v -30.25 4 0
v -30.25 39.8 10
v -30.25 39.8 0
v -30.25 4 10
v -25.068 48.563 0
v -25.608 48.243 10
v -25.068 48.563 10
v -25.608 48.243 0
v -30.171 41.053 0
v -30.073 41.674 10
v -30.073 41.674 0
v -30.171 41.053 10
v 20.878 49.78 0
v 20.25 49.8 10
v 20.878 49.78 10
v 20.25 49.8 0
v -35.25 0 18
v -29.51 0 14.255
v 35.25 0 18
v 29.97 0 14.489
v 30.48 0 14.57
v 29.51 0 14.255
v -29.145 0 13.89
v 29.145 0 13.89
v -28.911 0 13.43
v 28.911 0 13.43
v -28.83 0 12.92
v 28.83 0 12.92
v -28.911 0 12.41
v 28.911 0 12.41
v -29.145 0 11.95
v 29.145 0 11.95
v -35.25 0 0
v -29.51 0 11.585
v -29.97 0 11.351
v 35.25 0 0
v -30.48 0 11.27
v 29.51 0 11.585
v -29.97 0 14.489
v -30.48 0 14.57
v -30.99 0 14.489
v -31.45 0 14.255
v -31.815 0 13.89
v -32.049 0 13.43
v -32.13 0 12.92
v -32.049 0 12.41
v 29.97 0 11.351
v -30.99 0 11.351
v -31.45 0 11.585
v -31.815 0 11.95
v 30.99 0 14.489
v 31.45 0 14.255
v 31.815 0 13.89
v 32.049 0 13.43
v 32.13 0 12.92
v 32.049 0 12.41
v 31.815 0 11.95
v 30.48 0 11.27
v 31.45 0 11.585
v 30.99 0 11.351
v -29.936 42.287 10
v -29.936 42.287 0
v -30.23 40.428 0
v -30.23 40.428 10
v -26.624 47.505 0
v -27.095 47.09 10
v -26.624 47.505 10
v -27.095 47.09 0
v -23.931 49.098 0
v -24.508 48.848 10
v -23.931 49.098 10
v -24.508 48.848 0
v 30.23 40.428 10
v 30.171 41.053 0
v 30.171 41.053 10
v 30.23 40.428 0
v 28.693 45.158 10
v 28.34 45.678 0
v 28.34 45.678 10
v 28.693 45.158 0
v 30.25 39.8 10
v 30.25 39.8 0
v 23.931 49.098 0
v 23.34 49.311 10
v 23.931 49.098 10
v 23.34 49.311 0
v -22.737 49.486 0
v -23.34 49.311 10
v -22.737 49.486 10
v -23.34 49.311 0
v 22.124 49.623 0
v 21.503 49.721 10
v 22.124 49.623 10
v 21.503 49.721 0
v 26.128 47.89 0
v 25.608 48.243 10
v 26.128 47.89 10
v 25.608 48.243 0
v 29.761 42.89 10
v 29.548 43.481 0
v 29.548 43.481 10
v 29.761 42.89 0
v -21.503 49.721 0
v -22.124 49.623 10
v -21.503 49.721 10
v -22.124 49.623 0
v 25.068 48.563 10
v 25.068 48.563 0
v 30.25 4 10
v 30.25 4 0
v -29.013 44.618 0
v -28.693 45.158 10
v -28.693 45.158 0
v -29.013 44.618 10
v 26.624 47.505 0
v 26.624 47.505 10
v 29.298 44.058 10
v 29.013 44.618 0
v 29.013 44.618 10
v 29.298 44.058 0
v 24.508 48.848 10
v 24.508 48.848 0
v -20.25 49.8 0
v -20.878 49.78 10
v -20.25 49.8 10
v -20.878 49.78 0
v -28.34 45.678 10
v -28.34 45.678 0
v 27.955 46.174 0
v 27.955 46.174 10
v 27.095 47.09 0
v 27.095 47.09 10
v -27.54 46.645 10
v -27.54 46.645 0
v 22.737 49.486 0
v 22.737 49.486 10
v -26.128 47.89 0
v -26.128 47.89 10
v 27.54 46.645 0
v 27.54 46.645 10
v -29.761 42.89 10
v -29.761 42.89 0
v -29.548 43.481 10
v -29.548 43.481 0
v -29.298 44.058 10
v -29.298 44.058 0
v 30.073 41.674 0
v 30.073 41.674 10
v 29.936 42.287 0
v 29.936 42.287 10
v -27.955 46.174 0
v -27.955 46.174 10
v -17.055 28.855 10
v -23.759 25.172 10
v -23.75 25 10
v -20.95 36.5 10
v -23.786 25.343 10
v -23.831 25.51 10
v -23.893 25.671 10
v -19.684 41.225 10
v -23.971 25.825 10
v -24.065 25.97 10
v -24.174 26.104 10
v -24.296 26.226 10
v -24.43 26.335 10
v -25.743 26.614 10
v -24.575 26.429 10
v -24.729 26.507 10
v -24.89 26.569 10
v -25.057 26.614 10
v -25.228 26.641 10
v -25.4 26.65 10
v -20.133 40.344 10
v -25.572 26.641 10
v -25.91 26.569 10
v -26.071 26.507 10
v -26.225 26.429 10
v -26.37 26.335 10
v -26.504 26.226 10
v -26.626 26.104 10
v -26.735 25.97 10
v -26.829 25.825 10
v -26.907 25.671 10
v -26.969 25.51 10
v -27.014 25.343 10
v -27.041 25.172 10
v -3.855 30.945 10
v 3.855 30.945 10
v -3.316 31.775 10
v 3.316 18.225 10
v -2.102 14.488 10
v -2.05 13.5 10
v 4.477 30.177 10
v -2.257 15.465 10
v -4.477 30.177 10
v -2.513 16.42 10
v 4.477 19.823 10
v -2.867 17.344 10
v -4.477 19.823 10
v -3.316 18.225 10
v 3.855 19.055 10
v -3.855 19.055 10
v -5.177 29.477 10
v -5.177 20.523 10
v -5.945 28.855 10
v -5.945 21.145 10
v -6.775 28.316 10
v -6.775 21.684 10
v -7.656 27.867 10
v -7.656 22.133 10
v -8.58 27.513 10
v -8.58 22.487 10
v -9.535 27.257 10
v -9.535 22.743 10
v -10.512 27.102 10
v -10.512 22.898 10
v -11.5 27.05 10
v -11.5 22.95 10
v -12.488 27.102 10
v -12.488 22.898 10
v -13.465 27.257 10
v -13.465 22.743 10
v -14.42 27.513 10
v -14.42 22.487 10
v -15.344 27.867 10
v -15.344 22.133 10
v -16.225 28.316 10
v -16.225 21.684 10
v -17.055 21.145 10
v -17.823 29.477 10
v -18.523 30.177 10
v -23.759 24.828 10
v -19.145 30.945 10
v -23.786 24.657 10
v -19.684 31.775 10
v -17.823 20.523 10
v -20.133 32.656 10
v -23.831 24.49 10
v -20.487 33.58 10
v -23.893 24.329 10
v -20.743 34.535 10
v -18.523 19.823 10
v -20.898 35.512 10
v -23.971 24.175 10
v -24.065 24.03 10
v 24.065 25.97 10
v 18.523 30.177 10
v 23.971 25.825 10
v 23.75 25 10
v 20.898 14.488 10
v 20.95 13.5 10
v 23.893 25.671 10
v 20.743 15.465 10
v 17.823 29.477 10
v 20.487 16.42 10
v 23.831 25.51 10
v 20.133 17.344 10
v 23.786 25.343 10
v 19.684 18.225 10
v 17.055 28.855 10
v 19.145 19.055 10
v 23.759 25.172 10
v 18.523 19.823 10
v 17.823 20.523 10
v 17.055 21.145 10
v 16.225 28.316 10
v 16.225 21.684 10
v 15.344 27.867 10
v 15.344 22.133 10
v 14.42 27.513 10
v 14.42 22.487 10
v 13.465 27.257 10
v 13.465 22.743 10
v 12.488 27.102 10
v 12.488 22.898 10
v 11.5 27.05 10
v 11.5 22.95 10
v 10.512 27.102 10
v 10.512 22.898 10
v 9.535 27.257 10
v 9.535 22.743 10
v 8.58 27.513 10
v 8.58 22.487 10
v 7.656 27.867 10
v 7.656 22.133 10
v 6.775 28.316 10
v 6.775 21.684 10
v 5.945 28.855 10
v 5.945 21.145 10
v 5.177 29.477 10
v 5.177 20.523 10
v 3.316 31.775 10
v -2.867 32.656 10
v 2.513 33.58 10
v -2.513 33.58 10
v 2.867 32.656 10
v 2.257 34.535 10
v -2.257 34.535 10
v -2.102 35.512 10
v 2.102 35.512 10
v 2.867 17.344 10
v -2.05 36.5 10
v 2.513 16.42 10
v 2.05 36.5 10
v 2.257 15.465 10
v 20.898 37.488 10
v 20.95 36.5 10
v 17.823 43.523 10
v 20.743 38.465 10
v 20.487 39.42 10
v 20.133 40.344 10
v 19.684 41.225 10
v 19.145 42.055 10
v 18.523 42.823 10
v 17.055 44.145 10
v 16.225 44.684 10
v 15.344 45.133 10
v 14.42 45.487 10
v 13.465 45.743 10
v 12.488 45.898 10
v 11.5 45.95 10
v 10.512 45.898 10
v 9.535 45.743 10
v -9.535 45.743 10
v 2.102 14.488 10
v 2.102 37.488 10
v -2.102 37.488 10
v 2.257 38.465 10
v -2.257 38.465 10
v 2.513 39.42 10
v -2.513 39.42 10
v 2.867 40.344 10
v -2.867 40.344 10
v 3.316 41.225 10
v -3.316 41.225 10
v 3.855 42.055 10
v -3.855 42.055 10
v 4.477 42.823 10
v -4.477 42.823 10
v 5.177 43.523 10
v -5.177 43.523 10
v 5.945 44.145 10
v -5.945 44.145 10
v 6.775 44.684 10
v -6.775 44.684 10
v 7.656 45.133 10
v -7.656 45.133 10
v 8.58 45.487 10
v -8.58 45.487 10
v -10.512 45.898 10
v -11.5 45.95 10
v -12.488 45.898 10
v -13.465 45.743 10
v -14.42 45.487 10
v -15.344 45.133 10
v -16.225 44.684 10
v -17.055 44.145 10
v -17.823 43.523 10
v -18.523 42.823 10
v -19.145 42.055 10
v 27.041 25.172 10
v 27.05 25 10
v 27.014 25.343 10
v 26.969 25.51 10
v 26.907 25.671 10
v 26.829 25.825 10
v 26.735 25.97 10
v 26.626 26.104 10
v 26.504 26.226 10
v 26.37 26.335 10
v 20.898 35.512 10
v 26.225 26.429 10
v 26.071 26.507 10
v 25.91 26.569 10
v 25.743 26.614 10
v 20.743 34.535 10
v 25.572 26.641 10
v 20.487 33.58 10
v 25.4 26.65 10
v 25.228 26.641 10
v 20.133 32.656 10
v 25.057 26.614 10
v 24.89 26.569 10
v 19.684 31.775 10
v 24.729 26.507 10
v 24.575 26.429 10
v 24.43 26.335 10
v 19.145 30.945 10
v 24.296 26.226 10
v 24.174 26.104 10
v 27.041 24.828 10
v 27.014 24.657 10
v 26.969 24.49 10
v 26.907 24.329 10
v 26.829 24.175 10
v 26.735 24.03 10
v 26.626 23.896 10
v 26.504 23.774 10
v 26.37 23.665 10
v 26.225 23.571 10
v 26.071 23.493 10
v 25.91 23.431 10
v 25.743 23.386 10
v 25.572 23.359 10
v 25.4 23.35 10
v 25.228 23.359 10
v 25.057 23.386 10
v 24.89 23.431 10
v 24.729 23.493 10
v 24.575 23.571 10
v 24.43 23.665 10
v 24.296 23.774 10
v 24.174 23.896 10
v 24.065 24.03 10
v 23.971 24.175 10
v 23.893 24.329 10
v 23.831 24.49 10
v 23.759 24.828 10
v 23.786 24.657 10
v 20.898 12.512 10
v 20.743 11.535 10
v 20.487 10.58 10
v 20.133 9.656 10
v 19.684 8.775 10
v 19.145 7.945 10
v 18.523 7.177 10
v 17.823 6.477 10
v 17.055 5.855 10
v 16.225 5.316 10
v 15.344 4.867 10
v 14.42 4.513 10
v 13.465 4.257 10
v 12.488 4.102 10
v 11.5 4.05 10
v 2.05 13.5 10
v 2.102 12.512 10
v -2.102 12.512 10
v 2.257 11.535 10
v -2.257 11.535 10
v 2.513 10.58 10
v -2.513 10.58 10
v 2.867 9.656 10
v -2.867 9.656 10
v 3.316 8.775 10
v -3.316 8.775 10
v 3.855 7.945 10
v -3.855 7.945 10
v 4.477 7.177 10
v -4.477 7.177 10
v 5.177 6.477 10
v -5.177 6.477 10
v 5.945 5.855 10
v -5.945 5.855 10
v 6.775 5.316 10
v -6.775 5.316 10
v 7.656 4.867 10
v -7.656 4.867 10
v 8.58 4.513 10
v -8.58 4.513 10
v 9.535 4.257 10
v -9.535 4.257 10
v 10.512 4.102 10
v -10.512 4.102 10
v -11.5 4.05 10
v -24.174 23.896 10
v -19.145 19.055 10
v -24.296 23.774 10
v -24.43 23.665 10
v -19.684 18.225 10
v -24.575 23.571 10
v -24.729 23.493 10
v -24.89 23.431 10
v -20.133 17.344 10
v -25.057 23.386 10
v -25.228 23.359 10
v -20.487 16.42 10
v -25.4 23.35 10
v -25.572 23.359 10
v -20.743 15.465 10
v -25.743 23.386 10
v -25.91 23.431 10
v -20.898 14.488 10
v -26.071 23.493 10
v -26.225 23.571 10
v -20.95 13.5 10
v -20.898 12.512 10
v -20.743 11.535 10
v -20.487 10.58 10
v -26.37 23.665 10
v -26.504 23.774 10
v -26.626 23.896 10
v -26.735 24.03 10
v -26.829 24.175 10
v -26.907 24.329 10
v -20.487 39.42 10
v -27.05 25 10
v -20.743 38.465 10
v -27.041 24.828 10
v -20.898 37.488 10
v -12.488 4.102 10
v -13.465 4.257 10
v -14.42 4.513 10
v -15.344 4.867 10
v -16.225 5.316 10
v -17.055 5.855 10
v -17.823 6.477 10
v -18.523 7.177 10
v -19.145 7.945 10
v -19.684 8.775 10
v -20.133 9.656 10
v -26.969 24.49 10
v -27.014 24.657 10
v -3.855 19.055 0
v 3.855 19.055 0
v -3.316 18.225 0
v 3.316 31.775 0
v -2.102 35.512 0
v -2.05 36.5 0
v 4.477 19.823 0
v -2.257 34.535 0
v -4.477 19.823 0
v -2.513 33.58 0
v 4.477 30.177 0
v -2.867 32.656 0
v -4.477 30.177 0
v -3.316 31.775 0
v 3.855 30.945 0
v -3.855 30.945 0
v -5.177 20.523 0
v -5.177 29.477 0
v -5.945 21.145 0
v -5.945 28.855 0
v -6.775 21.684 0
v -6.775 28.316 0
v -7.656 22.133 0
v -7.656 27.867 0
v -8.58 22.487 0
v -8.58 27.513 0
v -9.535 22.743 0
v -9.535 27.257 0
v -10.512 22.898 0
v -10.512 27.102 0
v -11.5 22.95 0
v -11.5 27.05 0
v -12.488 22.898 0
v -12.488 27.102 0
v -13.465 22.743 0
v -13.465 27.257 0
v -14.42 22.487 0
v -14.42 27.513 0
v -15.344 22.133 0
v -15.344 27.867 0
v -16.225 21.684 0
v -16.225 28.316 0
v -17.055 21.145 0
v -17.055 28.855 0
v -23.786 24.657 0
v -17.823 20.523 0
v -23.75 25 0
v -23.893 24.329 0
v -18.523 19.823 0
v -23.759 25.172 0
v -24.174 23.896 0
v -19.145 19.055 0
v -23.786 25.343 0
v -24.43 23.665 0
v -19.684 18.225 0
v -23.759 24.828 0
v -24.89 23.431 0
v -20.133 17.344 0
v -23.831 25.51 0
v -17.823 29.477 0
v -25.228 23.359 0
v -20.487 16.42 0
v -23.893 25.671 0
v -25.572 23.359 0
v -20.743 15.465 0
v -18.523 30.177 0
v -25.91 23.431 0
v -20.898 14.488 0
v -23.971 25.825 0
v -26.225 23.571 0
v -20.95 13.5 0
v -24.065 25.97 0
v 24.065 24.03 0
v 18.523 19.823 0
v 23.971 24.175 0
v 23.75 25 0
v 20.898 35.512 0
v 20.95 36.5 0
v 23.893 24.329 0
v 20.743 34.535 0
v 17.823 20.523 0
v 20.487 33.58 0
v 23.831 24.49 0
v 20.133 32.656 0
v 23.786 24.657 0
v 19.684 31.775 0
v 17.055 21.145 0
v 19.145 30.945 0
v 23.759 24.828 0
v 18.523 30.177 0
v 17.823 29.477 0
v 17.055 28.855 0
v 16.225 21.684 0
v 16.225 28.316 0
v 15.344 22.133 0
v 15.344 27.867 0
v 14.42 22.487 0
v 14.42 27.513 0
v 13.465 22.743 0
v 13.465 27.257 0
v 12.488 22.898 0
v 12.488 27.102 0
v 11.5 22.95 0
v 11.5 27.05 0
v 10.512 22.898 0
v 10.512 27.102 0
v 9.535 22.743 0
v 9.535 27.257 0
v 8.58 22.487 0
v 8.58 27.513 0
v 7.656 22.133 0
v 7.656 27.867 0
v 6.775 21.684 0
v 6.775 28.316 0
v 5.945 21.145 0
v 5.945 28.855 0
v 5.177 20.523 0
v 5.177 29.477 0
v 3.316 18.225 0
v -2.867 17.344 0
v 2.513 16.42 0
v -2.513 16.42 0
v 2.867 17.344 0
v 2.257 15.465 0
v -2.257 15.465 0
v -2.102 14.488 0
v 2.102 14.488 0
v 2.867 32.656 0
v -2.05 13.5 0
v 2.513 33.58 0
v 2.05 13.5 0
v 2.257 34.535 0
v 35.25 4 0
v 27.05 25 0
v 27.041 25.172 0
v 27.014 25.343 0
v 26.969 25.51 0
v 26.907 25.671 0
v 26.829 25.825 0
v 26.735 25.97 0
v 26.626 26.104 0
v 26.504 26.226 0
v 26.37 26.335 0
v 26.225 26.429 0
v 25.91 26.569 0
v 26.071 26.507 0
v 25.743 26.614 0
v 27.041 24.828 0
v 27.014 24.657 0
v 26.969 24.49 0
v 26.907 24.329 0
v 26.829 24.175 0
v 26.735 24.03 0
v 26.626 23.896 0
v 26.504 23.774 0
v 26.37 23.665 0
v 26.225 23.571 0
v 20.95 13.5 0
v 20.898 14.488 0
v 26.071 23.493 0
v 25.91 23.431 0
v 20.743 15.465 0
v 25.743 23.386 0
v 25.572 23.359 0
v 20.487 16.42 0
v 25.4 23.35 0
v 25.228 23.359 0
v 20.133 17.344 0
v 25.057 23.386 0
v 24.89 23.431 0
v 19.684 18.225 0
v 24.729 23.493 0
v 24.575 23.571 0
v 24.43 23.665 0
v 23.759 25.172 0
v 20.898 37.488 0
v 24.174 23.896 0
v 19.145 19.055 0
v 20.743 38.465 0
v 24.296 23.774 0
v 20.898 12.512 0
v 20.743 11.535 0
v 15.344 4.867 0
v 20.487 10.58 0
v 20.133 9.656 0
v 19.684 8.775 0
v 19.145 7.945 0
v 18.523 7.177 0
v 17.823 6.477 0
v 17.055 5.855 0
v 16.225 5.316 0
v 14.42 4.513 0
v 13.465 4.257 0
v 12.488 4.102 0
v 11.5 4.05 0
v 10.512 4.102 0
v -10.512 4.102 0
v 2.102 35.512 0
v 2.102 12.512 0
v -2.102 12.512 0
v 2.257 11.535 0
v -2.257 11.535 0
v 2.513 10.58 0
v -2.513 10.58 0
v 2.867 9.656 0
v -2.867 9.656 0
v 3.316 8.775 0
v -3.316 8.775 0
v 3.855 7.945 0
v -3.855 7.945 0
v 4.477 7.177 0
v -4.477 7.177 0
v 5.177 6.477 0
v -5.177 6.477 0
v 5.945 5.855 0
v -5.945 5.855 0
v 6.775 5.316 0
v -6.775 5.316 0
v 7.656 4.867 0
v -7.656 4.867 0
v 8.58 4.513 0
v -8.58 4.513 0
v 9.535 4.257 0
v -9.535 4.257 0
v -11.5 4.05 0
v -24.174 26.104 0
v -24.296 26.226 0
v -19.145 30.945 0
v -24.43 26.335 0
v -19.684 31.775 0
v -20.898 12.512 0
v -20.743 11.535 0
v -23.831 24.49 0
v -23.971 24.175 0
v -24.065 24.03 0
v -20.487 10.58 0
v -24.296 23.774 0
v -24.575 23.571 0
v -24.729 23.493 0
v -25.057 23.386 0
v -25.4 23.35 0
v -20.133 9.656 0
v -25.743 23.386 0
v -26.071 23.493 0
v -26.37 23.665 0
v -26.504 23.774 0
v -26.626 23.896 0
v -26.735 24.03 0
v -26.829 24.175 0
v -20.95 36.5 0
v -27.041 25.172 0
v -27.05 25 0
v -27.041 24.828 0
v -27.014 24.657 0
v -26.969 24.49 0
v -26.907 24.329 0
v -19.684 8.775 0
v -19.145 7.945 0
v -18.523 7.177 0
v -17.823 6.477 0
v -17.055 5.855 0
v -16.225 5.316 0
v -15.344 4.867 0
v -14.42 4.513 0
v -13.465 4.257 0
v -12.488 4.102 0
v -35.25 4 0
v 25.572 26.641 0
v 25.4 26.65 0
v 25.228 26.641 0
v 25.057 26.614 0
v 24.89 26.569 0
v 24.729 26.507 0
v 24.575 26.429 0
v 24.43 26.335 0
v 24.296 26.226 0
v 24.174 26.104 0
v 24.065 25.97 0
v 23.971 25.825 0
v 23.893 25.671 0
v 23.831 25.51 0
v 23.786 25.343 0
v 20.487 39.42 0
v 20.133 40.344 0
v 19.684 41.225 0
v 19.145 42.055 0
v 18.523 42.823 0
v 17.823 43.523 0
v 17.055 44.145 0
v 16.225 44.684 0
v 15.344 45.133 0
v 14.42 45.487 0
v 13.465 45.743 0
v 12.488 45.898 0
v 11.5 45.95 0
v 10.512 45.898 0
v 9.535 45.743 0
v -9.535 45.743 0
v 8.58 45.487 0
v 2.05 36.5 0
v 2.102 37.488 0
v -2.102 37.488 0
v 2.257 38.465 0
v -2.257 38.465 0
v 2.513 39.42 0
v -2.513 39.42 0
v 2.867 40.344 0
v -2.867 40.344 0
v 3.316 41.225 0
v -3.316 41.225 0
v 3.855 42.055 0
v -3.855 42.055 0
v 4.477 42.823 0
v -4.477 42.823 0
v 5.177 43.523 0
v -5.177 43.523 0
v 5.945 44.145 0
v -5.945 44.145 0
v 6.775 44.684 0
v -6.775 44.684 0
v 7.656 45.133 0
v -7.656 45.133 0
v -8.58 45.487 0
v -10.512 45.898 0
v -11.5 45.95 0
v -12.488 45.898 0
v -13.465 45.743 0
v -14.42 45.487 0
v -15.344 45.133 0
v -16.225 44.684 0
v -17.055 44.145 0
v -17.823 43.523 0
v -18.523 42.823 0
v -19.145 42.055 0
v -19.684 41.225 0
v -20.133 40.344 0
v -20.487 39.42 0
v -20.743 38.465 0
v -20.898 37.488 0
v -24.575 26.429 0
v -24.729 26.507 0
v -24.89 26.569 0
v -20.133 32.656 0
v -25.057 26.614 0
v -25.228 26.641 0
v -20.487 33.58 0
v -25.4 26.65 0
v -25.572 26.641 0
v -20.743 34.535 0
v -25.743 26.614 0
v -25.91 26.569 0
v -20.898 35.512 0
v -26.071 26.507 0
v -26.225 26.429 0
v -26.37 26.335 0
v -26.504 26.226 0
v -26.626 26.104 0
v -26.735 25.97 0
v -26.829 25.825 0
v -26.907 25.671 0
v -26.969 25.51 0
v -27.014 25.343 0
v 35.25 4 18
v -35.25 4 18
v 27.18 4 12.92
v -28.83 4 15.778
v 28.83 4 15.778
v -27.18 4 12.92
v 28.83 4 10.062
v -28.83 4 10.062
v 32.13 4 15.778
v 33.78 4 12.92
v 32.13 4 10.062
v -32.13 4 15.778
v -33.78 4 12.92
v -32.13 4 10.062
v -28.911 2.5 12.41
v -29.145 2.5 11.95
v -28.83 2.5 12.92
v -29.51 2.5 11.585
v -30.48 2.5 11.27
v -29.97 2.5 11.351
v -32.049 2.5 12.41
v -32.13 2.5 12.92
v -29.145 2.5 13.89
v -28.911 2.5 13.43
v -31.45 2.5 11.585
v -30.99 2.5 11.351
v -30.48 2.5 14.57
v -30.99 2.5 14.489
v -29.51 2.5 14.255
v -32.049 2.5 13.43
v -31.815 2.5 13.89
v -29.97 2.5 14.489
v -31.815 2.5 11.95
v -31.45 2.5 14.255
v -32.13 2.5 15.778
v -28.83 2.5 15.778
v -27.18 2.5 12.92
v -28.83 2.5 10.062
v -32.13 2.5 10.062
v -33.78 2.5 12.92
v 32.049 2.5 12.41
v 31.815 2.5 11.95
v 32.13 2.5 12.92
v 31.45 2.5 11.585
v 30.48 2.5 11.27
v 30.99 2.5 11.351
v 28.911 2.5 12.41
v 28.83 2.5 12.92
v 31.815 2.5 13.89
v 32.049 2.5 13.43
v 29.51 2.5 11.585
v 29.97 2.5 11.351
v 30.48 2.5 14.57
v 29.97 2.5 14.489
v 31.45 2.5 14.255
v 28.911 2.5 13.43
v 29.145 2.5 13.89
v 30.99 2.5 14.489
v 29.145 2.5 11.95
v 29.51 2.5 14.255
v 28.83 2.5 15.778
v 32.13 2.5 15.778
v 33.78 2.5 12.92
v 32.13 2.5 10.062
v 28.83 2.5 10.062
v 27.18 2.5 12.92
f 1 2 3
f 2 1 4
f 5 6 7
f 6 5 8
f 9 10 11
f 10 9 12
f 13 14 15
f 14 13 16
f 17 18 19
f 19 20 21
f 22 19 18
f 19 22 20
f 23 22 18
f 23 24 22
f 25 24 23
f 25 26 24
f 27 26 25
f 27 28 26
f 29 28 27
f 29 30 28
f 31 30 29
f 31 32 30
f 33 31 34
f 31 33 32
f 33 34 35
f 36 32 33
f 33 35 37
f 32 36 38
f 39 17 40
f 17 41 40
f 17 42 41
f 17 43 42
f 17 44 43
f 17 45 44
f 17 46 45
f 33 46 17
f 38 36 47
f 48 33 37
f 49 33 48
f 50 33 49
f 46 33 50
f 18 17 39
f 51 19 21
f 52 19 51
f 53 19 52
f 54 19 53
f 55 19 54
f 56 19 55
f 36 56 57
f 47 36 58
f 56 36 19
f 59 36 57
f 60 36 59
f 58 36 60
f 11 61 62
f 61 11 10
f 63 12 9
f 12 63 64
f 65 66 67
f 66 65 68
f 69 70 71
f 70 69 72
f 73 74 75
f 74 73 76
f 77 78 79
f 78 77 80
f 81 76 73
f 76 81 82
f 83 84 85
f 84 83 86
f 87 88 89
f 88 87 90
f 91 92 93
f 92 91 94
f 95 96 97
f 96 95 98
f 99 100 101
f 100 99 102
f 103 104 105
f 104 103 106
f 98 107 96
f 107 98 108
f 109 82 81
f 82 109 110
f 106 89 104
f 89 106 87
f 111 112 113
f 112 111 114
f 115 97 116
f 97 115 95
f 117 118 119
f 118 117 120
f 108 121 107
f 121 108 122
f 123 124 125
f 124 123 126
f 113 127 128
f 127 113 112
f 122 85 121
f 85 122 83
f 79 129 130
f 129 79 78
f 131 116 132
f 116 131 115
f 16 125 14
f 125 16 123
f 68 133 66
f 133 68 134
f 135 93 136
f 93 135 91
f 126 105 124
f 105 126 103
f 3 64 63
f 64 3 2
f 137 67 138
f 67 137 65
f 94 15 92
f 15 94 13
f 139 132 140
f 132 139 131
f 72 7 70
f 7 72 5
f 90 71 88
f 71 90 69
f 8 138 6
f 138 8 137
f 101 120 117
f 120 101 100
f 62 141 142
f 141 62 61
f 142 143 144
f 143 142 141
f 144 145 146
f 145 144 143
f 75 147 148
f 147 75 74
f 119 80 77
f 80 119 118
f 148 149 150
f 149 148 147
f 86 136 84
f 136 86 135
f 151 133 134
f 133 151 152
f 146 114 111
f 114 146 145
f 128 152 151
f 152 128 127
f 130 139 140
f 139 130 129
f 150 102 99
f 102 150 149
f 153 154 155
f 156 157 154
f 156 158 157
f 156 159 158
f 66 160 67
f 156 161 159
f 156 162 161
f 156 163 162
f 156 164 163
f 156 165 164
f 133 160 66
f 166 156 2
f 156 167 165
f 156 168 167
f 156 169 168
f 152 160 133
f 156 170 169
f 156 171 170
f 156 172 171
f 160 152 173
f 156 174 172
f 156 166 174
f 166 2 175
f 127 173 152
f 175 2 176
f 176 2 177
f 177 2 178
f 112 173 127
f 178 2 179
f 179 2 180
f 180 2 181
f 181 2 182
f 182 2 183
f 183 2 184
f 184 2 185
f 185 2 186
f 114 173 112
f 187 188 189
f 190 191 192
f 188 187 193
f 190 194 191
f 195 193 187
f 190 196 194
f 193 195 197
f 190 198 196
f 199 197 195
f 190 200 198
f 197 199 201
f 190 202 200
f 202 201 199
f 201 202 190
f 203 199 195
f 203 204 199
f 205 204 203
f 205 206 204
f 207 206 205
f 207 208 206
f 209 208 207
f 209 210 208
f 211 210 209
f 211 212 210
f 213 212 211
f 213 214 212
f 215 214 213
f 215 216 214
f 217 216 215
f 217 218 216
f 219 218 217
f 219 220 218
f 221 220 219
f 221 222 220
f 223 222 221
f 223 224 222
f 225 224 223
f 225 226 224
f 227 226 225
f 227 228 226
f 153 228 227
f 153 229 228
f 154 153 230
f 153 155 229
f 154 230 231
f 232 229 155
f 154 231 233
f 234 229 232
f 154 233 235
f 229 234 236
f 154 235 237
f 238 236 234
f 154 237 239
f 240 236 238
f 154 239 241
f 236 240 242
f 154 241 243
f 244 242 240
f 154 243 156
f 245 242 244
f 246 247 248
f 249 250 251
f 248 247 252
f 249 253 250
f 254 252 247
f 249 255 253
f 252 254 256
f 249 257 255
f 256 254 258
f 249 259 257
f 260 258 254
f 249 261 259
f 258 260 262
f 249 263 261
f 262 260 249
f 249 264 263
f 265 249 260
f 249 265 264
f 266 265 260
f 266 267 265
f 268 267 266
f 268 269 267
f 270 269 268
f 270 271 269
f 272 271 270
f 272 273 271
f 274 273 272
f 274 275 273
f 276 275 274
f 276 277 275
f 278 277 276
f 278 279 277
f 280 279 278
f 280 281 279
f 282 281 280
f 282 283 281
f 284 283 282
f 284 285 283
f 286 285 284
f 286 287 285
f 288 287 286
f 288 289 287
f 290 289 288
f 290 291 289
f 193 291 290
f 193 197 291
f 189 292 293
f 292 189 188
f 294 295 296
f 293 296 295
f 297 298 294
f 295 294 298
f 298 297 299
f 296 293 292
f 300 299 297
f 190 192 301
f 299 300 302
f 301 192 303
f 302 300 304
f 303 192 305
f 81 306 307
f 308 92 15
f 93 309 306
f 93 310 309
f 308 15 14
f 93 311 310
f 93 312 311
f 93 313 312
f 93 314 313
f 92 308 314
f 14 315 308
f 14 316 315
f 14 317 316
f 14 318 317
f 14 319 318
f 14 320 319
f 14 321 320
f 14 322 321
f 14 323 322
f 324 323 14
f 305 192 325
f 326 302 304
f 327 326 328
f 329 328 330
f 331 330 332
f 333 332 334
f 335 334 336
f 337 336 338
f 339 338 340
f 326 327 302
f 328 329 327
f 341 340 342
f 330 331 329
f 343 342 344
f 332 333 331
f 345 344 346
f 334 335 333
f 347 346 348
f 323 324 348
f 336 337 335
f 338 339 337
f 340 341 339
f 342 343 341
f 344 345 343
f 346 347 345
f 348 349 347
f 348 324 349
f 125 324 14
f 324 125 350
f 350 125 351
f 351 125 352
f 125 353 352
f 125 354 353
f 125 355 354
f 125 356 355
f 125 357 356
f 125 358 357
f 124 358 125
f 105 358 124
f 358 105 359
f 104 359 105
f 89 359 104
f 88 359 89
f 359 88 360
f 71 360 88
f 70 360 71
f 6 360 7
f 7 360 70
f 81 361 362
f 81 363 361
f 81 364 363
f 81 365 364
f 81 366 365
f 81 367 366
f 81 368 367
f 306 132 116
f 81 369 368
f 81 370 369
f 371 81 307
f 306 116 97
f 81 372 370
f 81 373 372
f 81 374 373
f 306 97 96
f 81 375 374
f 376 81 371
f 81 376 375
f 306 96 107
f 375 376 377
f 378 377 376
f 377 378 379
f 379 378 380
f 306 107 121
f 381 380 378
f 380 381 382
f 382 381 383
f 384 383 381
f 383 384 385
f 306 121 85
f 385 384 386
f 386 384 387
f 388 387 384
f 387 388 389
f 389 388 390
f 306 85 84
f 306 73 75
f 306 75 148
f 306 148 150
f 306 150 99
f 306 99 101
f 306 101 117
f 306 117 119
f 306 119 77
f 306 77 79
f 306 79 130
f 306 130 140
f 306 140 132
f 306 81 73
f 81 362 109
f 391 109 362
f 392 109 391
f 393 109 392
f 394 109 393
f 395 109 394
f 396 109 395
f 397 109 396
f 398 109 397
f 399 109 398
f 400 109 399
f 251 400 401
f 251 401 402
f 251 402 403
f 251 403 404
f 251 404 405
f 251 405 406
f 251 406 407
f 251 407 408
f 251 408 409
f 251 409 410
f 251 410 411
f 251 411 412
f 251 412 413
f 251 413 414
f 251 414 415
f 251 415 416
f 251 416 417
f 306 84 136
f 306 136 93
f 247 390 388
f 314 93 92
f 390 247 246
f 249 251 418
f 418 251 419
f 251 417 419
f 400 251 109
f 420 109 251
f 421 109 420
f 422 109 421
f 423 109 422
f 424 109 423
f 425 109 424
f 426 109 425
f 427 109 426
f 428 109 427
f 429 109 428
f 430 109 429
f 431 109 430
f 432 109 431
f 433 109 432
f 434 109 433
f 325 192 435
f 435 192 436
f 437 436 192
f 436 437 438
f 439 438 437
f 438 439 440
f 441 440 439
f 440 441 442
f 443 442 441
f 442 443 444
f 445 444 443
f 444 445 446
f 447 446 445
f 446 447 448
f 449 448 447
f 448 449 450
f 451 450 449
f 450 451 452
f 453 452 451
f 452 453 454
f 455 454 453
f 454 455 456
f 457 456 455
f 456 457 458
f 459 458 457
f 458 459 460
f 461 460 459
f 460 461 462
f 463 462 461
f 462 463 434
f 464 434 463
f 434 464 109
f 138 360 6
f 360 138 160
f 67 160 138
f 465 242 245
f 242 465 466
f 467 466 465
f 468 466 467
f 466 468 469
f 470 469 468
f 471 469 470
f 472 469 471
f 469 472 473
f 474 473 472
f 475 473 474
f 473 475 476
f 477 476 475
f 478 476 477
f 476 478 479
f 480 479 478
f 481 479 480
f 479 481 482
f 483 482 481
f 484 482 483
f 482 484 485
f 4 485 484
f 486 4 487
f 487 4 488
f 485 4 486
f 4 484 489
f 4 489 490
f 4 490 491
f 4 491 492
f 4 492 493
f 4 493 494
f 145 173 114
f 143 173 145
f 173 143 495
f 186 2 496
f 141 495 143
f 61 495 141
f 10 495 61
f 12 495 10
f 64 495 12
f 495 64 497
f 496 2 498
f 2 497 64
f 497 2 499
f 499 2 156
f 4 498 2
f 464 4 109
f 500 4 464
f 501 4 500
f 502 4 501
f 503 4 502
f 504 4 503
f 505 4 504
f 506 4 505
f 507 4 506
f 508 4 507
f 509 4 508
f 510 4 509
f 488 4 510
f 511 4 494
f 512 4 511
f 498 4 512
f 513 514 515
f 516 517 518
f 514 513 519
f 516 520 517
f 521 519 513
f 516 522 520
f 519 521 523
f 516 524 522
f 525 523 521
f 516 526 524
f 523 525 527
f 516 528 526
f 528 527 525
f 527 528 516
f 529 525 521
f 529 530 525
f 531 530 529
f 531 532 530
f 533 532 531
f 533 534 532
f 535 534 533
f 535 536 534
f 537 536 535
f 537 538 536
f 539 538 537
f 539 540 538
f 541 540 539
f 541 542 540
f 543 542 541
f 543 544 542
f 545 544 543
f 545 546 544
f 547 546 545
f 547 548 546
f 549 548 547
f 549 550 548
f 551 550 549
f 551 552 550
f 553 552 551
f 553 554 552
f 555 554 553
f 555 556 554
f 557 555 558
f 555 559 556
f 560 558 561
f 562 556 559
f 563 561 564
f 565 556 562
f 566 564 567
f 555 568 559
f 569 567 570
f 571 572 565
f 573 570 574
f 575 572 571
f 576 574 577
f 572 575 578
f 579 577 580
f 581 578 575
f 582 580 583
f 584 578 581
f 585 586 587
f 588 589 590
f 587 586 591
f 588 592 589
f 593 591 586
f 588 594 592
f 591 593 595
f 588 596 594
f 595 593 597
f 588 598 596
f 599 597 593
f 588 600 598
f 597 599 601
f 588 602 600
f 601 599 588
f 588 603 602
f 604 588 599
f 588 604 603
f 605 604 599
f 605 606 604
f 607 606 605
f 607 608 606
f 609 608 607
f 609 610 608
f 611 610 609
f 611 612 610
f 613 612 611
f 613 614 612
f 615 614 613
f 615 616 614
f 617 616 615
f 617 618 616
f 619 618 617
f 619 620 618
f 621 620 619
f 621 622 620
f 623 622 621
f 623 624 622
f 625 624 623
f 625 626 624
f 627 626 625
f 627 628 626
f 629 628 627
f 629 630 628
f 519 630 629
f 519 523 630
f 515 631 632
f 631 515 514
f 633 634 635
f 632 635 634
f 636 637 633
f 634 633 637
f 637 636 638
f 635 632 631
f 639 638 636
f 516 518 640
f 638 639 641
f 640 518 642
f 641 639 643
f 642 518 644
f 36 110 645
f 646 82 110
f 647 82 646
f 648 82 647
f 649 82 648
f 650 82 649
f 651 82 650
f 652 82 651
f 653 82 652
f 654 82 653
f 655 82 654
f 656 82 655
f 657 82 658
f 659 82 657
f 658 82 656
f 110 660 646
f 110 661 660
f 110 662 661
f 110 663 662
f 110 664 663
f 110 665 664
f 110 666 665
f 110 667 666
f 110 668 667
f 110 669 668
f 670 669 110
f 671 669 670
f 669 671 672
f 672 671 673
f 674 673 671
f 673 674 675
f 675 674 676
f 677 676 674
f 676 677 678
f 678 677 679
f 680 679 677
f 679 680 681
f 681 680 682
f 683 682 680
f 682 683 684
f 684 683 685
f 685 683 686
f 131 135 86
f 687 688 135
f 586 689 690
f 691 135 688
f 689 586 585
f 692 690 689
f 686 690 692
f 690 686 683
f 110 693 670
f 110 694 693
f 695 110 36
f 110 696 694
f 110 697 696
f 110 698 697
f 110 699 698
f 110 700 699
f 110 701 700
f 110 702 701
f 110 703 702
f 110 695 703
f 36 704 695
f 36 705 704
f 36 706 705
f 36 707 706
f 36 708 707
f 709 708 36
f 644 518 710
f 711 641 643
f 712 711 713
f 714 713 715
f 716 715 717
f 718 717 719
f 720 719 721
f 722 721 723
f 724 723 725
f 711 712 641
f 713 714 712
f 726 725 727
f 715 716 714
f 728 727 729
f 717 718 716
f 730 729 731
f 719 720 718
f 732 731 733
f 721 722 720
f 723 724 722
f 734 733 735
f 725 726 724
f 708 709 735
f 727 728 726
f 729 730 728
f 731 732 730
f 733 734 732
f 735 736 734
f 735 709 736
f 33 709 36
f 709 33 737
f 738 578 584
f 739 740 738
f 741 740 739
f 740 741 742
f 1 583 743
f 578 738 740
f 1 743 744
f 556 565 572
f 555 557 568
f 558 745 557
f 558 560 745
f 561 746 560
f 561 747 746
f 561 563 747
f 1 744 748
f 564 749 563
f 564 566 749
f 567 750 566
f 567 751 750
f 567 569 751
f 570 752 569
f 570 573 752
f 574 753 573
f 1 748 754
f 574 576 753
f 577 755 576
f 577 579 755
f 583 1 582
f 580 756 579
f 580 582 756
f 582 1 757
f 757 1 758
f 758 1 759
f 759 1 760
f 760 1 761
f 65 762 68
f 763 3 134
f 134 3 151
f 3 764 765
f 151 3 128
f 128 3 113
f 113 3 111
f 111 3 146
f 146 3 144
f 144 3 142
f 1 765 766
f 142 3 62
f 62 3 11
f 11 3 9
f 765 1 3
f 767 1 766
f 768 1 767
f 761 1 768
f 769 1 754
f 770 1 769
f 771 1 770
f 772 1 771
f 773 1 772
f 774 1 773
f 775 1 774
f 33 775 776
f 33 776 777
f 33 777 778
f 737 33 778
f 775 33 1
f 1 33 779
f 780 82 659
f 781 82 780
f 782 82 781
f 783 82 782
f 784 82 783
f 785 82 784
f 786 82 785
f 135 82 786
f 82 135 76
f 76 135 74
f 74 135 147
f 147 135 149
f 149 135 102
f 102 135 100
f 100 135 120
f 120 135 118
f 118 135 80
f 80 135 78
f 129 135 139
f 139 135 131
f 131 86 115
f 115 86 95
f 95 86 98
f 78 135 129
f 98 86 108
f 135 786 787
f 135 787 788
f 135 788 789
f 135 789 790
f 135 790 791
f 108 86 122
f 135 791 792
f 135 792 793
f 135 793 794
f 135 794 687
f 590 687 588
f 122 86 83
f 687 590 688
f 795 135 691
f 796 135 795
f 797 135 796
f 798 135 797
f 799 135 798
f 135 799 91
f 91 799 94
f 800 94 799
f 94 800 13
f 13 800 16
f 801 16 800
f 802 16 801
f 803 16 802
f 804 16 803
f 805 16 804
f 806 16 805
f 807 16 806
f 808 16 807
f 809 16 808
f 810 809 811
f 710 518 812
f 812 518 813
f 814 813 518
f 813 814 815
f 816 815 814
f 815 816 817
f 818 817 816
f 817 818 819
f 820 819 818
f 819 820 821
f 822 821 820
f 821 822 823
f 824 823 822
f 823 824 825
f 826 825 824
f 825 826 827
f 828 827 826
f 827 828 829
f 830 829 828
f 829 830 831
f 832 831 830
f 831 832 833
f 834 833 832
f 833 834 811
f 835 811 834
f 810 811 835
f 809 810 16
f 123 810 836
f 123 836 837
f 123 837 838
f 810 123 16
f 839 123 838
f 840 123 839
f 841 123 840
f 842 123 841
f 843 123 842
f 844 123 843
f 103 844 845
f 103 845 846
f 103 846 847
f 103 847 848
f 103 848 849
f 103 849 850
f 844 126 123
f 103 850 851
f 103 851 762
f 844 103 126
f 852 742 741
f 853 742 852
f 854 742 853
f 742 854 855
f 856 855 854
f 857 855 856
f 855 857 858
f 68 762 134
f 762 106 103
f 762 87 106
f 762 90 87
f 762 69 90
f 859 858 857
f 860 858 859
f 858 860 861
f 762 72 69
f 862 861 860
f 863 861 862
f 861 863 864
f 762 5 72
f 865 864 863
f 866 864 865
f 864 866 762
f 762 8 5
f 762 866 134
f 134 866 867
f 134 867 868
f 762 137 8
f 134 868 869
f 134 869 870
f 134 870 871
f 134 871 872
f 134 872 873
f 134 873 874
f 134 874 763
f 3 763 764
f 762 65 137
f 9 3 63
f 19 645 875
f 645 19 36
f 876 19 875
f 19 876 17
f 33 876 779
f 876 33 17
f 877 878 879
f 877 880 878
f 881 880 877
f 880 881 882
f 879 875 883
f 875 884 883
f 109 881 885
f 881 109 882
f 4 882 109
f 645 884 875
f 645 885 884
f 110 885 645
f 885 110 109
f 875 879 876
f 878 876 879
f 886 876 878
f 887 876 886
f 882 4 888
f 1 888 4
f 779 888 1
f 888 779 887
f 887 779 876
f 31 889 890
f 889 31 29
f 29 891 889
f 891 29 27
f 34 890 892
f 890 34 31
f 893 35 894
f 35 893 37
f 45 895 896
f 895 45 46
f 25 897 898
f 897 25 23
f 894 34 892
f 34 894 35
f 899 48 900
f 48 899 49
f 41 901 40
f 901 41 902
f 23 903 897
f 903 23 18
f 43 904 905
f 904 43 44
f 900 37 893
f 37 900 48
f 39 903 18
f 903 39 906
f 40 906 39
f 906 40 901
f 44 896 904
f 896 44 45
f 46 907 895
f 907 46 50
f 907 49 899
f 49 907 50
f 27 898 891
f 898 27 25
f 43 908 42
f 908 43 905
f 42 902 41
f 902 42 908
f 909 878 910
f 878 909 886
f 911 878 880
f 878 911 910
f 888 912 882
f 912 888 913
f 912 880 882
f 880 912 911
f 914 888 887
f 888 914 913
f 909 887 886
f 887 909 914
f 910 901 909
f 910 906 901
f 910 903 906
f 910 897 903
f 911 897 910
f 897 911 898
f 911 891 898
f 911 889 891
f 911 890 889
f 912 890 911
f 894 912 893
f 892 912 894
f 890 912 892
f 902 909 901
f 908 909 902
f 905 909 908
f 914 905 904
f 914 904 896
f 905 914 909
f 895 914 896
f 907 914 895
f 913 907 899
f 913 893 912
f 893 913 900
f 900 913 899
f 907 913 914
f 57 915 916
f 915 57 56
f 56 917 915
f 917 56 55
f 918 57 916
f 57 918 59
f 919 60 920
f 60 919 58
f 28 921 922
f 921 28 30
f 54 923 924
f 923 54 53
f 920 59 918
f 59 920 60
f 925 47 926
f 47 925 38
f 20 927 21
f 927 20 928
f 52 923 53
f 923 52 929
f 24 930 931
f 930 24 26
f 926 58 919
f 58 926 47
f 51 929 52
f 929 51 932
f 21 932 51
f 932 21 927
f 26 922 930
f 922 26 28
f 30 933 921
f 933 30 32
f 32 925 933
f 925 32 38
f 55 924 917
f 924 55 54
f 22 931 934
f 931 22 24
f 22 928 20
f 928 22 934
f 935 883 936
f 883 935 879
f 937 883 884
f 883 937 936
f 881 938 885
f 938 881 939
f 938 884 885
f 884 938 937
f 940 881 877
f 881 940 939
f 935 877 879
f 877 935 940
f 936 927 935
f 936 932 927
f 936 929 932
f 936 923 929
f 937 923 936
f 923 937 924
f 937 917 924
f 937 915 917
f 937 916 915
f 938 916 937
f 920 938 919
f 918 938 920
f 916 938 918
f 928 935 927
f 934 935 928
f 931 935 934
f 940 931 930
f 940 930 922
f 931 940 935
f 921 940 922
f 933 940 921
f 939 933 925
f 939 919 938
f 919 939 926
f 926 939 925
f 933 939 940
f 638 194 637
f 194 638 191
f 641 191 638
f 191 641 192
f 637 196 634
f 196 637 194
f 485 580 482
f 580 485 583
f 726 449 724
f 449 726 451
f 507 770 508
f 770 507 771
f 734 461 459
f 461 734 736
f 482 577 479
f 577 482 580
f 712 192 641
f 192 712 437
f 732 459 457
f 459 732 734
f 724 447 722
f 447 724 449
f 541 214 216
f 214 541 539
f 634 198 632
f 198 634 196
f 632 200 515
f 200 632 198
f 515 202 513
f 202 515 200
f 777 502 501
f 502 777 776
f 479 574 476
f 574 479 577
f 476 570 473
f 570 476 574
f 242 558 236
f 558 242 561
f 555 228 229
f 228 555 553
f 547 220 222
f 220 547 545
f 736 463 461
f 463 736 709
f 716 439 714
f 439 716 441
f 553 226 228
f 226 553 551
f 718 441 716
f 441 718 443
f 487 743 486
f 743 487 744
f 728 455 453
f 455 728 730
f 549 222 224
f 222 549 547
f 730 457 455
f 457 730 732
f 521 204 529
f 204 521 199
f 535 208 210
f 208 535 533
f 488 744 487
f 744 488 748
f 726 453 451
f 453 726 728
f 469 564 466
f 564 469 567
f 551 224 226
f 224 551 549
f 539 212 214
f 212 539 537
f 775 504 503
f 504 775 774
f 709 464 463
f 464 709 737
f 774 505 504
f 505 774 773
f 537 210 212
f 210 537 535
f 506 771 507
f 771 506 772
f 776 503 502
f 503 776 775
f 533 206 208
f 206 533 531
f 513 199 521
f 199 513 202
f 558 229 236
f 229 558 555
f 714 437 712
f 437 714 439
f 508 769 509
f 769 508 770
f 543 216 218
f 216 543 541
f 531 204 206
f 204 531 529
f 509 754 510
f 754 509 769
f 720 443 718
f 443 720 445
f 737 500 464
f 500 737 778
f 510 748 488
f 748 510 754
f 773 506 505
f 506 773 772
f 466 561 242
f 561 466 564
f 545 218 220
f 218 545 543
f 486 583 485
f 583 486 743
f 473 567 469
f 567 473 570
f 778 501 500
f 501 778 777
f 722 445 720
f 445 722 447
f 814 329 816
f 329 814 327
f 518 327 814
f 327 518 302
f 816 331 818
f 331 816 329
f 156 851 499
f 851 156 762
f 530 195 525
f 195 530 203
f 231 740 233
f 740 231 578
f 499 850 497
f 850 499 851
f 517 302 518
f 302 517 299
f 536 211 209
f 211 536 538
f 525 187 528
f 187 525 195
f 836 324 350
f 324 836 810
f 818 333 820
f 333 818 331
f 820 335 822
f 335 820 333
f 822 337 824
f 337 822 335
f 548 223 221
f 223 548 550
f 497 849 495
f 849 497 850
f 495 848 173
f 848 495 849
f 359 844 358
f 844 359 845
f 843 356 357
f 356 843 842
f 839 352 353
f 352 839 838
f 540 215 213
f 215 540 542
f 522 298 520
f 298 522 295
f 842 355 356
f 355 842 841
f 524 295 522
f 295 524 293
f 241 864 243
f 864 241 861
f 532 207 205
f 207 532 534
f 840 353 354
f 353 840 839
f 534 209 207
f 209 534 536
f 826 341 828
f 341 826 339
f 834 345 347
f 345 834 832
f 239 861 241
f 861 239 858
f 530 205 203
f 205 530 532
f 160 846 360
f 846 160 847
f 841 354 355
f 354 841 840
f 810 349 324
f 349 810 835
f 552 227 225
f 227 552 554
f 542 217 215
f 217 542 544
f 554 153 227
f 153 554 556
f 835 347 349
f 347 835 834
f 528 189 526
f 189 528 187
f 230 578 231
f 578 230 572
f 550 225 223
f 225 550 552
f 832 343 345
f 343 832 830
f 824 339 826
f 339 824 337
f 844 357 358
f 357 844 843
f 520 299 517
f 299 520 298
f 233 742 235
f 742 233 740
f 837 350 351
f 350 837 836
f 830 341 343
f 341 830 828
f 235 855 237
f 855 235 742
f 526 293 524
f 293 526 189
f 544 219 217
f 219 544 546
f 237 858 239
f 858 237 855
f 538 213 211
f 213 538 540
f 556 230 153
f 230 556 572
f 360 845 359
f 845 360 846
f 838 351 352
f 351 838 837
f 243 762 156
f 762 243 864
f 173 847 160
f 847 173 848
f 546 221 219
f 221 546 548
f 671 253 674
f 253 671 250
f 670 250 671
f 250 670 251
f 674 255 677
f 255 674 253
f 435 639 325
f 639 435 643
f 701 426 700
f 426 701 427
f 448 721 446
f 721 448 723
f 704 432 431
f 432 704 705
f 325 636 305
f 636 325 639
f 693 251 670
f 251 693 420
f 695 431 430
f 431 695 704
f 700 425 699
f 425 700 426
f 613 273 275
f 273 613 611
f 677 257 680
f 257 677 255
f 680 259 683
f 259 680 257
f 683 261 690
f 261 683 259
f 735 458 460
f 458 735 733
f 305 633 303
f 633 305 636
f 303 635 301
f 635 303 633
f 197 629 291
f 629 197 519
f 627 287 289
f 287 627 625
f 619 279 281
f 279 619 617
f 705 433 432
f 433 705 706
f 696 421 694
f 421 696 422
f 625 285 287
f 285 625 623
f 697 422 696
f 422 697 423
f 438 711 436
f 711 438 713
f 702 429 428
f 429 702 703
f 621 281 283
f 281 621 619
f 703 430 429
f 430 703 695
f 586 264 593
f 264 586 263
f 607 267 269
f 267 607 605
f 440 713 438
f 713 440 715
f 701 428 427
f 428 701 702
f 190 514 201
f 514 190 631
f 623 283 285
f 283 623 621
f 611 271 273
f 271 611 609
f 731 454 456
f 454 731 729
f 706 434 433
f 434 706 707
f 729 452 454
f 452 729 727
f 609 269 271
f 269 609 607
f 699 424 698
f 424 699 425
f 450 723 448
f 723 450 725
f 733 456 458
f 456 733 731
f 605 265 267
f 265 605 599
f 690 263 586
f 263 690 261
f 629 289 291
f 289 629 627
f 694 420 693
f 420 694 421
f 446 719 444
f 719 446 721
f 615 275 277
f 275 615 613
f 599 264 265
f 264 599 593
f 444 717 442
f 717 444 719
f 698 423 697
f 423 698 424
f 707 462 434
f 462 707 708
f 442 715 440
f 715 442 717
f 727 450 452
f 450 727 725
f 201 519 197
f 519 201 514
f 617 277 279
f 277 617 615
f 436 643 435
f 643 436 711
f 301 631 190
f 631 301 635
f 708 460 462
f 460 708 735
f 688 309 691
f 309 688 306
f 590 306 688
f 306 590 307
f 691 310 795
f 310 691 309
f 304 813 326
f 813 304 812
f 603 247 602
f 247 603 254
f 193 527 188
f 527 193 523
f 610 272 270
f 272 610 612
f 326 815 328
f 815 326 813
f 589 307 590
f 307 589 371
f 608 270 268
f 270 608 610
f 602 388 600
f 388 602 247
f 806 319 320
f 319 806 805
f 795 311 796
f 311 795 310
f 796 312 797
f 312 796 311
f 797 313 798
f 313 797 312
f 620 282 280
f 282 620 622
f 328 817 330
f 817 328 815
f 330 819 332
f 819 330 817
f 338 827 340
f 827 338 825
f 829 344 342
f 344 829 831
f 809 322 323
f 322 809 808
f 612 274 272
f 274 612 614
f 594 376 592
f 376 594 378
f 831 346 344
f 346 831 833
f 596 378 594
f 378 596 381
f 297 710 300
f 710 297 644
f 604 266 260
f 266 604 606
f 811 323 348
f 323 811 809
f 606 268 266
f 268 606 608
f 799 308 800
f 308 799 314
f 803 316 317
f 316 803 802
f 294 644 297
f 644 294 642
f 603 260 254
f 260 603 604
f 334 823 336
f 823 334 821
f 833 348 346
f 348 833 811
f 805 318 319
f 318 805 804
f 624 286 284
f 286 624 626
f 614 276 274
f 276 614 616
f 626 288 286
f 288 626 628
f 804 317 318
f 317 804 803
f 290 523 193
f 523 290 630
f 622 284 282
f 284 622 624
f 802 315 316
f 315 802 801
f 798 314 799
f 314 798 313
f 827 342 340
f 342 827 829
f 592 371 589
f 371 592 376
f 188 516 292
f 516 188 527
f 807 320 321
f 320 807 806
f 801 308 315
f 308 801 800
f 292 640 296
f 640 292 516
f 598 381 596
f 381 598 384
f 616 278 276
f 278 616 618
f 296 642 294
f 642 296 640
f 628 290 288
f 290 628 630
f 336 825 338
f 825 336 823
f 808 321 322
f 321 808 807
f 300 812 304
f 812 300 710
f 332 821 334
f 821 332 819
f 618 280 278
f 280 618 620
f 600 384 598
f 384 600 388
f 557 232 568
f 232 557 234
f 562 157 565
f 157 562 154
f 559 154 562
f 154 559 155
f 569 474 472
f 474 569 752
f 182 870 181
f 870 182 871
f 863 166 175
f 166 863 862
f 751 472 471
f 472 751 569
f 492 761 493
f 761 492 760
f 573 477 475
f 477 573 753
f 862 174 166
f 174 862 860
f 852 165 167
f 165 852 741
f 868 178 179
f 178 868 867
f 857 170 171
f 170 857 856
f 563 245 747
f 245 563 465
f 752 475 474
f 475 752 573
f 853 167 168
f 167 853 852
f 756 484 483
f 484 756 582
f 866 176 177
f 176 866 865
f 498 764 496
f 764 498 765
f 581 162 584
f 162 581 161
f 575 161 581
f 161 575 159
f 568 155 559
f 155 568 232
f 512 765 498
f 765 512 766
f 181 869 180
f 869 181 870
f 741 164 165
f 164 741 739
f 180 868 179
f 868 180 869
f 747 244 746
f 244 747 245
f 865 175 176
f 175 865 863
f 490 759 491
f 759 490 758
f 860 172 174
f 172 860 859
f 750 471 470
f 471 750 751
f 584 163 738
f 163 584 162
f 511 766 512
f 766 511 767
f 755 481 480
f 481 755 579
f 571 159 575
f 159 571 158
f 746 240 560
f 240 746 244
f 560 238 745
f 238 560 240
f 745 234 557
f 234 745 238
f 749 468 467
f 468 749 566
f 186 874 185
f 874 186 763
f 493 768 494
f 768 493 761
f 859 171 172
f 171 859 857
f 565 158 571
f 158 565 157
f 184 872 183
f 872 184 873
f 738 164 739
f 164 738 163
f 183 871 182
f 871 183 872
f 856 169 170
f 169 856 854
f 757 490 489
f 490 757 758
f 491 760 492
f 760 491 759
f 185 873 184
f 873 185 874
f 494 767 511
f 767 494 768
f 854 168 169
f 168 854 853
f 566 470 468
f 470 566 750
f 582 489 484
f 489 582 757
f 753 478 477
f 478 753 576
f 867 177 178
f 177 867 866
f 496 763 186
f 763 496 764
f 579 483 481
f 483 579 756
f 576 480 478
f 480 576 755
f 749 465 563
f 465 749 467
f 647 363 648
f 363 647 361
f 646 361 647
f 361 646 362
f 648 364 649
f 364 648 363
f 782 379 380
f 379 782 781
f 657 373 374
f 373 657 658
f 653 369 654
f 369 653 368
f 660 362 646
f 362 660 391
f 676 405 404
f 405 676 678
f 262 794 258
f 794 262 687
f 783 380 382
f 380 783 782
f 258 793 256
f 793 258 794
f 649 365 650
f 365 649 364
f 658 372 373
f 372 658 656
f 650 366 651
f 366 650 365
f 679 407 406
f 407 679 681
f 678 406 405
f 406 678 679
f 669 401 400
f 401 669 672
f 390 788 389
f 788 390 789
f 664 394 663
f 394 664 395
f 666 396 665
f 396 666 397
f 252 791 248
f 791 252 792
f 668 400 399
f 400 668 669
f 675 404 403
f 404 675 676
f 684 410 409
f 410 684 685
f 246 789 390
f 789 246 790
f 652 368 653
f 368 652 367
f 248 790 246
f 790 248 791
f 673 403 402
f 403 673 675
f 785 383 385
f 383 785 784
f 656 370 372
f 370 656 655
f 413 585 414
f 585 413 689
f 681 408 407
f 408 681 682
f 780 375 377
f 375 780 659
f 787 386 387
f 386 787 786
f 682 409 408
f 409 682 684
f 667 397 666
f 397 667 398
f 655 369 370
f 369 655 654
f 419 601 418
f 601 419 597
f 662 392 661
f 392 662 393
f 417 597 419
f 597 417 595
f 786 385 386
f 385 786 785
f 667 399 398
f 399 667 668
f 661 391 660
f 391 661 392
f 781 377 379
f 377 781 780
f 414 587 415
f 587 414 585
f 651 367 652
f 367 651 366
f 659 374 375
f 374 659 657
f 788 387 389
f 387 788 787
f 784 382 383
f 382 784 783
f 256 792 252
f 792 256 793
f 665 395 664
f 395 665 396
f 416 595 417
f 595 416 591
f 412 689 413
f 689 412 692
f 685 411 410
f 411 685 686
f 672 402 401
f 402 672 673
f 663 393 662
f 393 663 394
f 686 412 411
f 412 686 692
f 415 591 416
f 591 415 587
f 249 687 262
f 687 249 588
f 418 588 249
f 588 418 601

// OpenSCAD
$fn=100;

base_width = 70.5;
pcb_width = 60.5;


pcb_height = 49.8;
pcb_radius = 10;

pcb_screw_dist = 10.16*6;
screw_from_side = 10.16*0.5;

flange_thickness = 4;
flange_screw_depth =  2.5;
holder_depth = 10;
flange_depth = holder_depth+8;


bat_bot_z = 13.5;
bat_dist = 23;

battery_d = 18.9;

mount_screw_d = 10.16*5;
mount_screw_z = 25;

M3_screw_diameter = 3.3;
M3_nut_diameter = 6.6;

module battery_holder(){
difference(){
union(){
    hull(){
    translate([pcb_width/2-pcb_radius, pcb_height-pcb_radius, 0])
        cylinder(r = pcb_radius, h = holder_depth);

    translate([-1*(pcb_width/2-pcb_radius), pcb_height-pcb_radius, 0])
        cylinder(r = pcb_radius, h = holder_depth);
    
    translate([-pcb_width/2, 0, 0])
        cube([pcb_width, 1, holder_depth]);
}
    translate([-base_width/2, 0, 0])
        cube([base_width, flange_thickness, flange_depth]);
}
    
    for(x = [-pcb_screw_dist/2, pcb_screw_dist/2]) translate([x, flange_screw_depth, flange_depth-screw_from_side]) rotate([-90, 0, 0]){
              cylinder(d=M3_screw_diameter, h=20, $fn=20, center=true);
              cylinder(d = M3_nut_diameter, h = 10, $fn=6);
        }
    
    for(x=[-0.5, 0.5], y=[0, 1]) translate([bat_dist*x, bat_dist*y+bat_bot_z, -0.1]) cylinder(d = battery_d, h = flange_depth, $fn=60);

    for(x=[-0.5, 0.5]) translate([mount_screw_d*x, mount_screw_z, -0.1]) cylinder(d = M3_screw_diameter, h = flange_depth, $fn=60);

}
}


battery_holder();
